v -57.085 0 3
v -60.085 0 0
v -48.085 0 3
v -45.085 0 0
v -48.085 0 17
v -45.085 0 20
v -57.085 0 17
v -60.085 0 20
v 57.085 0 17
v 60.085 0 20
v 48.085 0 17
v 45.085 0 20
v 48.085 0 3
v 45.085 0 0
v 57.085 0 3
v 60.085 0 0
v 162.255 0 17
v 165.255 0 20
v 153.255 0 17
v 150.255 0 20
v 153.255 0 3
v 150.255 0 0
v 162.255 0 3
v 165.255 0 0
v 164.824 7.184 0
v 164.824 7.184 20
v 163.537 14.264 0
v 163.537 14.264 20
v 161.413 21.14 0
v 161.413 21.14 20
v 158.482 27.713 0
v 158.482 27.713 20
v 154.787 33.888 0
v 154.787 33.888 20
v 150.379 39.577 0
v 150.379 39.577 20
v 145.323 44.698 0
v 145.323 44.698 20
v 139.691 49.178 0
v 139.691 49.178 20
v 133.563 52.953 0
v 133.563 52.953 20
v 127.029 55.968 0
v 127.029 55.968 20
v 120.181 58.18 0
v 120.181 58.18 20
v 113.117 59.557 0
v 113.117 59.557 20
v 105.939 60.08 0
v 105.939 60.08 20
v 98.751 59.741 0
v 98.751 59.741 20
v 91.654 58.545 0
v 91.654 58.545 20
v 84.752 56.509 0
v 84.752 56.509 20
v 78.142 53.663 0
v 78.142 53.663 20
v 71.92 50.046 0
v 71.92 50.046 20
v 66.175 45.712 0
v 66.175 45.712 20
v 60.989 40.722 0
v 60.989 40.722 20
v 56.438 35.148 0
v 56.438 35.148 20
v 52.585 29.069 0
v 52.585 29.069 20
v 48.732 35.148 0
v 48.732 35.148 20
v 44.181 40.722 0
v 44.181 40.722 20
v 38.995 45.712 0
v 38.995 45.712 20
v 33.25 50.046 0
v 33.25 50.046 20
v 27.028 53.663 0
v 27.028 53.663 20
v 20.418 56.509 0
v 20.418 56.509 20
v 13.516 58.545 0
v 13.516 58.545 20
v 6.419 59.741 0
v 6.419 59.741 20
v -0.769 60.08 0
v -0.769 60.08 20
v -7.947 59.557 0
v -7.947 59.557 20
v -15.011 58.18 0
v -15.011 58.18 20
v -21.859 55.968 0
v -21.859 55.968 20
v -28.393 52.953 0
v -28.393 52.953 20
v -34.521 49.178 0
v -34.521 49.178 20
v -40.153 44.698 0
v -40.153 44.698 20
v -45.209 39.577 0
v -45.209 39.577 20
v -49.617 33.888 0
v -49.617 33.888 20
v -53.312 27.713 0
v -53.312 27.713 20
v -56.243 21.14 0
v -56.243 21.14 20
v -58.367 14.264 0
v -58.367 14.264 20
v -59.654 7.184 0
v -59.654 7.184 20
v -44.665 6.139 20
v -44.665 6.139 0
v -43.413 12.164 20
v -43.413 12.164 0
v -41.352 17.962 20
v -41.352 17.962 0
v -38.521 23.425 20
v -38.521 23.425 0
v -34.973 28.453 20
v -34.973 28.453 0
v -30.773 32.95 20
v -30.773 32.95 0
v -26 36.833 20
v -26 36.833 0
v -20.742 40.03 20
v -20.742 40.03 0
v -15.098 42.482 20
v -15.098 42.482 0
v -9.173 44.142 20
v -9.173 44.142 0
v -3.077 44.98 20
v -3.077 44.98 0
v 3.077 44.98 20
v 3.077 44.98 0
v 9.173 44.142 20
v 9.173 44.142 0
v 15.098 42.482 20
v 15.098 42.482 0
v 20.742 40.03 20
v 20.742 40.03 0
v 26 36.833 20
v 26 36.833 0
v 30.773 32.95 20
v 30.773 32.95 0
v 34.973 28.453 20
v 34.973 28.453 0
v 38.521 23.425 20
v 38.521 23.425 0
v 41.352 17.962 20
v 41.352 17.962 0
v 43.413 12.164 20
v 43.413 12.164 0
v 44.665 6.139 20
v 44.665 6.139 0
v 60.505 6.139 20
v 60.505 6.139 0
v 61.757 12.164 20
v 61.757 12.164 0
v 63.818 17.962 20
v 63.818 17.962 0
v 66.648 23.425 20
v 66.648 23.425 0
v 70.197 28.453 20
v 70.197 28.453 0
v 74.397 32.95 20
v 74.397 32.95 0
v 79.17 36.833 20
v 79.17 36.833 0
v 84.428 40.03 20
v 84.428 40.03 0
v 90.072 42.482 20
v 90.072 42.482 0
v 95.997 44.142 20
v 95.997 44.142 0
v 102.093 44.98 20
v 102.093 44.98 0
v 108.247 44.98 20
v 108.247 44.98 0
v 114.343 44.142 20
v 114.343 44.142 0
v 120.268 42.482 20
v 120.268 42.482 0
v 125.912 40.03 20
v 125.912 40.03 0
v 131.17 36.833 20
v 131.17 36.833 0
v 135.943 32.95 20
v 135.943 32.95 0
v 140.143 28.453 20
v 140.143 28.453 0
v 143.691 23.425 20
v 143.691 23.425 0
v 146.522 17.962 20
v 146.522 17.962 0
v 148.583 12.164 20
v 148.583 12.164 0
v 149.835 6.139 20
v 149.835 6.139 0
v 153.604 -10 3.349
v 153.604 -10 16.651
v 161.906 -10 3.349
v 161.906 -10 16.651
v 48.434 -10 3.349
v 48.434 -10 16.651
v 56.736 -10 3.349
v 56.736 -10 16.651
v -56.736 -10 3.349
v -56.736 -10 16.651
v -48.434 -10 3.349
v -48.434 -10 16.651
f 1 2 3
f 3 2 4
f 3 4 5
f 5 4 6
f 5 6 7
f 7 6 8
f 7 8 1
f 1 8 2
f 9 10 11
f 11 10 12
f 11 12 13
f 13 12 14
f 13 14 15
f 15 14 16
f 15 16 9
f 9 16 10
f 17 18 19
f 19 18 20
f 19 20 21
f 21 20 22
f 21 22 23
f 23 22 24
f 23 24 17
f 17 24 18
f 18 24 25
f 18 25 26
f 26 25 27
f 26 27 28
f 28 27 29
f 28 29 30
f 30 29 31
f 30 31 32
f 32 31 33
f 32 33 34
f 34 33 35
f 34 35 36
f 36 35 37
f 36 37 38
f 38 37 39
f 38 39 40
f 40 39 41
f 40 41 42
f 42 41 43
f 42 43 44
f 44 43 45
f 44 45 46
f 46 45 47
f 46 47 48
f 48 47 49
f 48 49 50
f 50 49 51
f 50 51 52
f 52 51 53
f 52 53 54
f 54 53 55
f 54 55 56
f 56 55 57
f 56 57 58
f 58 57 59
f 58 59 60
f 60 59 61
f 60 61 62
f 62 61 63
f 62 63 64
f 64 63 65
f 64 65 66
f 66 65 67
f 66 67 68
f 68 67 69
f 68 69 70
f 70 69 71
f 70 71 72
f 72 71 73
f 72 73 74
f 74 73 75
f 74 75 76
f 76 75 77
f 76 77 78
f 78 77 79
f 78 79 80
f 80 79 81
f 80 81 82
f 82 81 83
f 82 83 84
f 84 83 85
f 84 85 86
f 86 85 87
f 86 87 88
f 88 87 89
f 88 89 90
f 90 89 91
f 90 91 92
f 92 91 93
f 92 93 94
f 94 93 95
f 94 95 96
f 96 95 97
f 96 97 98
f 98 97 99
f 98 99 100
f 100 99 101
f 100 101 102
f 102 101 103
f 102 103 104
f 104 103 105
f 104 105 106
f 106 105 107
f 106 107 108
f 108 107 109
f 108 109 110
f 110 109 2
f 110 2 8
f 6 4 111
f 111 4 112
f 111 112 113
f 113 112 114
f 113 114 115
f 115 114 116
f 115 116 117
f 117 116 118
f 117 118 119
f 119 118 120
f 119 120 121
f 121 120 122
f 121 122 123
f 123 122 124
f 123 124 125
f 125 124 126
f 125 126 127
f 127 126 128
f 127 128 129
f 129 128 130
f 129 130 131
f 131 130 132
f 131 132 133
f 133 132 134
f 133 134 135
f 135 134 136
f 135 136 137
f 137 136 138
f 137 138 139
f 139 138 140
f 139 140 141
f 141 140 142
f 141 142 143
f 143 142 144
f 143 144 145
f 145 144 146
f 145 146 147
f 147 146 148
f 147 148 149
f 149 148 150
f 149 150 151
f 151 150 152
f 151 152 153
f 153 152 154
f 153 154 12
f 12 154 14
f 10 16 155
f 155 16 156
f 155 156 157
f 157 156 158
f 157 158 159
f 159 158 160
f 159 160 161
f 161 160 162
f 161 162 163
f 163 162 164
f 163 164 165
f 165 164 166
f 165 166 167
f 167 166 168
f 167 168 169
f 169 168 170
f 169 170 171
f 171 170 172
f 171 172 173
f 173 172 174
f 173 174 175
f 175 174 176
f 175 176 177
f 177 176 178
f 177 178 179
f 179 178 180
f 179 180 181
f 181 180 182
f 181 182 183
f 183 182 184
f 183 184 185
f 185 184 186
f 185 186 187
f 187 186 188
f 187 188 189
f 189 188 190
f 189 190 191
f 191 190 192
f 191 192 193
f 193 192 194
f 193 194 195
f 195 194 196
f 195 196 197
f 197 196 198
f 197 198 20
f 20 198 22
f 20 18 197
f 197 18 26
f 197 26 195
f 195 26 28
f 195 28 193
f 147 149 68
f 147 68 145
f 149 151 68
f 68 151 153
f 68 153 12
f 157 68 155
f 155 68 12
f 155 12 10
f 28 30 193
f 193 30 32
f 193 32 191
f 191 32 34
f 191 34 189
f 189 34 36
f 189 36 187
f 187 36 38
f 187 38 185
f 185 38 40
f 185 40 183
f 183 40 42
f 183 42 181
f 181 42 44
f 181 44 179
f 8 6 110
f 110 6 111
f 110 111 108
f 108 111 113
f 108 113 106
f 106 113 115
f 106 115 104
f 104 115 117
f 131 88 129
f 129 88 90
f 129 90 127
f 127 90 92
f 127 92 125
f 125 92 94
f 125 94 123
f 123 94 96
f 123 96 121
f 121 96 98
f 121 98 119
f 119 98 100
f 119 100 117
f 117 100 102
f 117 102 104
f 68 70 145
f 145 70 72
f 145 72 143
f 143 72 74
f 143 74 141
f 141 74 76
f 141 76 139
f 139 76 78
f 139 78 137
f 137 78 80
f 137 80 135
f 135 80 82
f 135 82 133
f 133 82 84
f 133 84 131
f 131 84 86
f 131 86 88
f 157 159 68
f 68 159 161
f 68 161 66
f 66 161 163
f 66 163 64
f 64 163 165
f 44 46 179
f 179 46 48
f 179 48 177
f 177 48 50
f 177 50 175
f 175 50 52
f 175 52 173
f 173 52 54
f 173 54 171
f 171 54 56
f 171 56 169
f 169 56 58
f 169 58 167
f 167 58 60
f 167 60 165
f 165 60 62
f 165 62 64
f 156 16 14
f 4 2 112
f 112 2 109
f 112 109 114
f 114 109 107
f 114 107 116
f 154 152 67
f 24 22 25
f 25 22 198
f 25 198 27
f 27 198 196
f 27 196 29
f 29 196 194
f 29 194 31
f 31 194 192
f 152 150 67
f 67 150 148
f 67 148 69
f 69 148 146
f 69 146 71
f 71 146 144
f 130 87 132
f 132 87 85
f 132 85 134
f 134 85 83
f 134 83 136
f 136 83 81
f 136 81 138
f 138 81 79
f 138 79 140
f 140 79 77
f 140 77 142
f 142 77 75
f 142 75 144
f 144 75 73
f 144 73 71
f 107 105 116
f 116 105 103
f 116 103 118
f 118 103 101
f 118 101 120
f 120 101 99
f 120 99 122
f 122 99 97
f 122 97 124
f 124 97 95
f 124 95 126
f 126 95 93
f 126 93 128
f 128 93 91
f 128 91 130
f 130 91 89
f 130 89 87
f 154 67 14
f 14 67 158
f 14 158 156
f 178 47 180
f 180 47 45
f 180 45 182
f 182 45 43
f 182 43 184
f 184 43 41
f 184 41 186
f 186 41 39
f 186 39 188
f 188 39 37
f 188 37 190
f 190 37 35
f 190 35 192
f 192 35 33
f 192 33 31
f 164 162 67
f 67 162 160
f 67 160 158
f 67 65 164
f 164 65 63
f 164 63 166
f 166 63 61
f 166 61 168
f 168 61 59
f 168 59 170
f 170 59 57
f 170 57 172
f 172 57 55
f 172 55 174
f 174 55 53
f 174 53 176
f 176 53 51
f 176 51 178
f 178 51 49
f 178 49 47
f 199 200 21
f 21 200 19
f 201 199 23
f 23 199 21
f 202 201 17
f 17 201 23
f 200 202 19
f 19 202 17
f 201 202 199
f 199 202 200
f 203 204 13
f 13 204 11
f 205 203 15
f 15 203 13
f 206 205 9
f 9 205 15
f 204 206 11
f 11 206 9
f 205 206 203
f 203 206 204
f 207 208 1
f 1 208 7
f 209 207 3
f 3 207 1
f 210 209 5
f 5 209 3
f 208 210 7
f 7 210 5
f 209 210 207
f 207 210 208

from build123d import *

# Parameters (mm, degrees)
BOSS_EXTRUDE1_DEPTH = 20
SKETCH3_W           = 9
SKETCH3_H           = 14
BOSS_EXTRUDE2_DEPTH = 10
BOSS_EXTRUDE2_TAPER = 2


with BuildPart() as part:
    # Sketch2 → Boss-Extrude1 (new body)
    with BuildSketch(Plane.XY):
        with BuildLine():
            Line((45.085, 0), (60.085, 0))
            ThreePointArc((60.085, 0), (105.17, 45.085), (150.255, 0))
            Line((150.255, 0), (165.255, 0))
            ThreePointArc((165.255, 0), (120.18062124, 58.179794388), (52.585, 29.069313717))
            ThreePointArc((52.585, 29.069313717), (-15.01062124, 58.179794388), (-60.085, 0))
            Line((-60.085, 0), (-45.085, 0))
            ThreePointArc((-45.085, 0), (0, 45.085), (45.085, 0))
        make_face()
    extrude(amount=BOSS_EXTRUDE1_DEPTH)

    # Sketch3 → Boss-Extrude2 (add)
    with BuildSketch(Plane.XZ):
        with Locations((-52.585, 10)):
            Rectangle(SKETCH3_W, SKETCH3_H)
        with Locations((52.585, 10)):
            Rectangle(SKETCH3_W, SKETCH3_H)
        with Locations((157.755, 10)):
            Rectangle(SKETCH3_W, SKETCH3_H)
    extrude(amount=BOSS_EXTRUDE2_DEPTH, taper=BOSS_EXTRUDE2_TAPER)


solid = part.part
